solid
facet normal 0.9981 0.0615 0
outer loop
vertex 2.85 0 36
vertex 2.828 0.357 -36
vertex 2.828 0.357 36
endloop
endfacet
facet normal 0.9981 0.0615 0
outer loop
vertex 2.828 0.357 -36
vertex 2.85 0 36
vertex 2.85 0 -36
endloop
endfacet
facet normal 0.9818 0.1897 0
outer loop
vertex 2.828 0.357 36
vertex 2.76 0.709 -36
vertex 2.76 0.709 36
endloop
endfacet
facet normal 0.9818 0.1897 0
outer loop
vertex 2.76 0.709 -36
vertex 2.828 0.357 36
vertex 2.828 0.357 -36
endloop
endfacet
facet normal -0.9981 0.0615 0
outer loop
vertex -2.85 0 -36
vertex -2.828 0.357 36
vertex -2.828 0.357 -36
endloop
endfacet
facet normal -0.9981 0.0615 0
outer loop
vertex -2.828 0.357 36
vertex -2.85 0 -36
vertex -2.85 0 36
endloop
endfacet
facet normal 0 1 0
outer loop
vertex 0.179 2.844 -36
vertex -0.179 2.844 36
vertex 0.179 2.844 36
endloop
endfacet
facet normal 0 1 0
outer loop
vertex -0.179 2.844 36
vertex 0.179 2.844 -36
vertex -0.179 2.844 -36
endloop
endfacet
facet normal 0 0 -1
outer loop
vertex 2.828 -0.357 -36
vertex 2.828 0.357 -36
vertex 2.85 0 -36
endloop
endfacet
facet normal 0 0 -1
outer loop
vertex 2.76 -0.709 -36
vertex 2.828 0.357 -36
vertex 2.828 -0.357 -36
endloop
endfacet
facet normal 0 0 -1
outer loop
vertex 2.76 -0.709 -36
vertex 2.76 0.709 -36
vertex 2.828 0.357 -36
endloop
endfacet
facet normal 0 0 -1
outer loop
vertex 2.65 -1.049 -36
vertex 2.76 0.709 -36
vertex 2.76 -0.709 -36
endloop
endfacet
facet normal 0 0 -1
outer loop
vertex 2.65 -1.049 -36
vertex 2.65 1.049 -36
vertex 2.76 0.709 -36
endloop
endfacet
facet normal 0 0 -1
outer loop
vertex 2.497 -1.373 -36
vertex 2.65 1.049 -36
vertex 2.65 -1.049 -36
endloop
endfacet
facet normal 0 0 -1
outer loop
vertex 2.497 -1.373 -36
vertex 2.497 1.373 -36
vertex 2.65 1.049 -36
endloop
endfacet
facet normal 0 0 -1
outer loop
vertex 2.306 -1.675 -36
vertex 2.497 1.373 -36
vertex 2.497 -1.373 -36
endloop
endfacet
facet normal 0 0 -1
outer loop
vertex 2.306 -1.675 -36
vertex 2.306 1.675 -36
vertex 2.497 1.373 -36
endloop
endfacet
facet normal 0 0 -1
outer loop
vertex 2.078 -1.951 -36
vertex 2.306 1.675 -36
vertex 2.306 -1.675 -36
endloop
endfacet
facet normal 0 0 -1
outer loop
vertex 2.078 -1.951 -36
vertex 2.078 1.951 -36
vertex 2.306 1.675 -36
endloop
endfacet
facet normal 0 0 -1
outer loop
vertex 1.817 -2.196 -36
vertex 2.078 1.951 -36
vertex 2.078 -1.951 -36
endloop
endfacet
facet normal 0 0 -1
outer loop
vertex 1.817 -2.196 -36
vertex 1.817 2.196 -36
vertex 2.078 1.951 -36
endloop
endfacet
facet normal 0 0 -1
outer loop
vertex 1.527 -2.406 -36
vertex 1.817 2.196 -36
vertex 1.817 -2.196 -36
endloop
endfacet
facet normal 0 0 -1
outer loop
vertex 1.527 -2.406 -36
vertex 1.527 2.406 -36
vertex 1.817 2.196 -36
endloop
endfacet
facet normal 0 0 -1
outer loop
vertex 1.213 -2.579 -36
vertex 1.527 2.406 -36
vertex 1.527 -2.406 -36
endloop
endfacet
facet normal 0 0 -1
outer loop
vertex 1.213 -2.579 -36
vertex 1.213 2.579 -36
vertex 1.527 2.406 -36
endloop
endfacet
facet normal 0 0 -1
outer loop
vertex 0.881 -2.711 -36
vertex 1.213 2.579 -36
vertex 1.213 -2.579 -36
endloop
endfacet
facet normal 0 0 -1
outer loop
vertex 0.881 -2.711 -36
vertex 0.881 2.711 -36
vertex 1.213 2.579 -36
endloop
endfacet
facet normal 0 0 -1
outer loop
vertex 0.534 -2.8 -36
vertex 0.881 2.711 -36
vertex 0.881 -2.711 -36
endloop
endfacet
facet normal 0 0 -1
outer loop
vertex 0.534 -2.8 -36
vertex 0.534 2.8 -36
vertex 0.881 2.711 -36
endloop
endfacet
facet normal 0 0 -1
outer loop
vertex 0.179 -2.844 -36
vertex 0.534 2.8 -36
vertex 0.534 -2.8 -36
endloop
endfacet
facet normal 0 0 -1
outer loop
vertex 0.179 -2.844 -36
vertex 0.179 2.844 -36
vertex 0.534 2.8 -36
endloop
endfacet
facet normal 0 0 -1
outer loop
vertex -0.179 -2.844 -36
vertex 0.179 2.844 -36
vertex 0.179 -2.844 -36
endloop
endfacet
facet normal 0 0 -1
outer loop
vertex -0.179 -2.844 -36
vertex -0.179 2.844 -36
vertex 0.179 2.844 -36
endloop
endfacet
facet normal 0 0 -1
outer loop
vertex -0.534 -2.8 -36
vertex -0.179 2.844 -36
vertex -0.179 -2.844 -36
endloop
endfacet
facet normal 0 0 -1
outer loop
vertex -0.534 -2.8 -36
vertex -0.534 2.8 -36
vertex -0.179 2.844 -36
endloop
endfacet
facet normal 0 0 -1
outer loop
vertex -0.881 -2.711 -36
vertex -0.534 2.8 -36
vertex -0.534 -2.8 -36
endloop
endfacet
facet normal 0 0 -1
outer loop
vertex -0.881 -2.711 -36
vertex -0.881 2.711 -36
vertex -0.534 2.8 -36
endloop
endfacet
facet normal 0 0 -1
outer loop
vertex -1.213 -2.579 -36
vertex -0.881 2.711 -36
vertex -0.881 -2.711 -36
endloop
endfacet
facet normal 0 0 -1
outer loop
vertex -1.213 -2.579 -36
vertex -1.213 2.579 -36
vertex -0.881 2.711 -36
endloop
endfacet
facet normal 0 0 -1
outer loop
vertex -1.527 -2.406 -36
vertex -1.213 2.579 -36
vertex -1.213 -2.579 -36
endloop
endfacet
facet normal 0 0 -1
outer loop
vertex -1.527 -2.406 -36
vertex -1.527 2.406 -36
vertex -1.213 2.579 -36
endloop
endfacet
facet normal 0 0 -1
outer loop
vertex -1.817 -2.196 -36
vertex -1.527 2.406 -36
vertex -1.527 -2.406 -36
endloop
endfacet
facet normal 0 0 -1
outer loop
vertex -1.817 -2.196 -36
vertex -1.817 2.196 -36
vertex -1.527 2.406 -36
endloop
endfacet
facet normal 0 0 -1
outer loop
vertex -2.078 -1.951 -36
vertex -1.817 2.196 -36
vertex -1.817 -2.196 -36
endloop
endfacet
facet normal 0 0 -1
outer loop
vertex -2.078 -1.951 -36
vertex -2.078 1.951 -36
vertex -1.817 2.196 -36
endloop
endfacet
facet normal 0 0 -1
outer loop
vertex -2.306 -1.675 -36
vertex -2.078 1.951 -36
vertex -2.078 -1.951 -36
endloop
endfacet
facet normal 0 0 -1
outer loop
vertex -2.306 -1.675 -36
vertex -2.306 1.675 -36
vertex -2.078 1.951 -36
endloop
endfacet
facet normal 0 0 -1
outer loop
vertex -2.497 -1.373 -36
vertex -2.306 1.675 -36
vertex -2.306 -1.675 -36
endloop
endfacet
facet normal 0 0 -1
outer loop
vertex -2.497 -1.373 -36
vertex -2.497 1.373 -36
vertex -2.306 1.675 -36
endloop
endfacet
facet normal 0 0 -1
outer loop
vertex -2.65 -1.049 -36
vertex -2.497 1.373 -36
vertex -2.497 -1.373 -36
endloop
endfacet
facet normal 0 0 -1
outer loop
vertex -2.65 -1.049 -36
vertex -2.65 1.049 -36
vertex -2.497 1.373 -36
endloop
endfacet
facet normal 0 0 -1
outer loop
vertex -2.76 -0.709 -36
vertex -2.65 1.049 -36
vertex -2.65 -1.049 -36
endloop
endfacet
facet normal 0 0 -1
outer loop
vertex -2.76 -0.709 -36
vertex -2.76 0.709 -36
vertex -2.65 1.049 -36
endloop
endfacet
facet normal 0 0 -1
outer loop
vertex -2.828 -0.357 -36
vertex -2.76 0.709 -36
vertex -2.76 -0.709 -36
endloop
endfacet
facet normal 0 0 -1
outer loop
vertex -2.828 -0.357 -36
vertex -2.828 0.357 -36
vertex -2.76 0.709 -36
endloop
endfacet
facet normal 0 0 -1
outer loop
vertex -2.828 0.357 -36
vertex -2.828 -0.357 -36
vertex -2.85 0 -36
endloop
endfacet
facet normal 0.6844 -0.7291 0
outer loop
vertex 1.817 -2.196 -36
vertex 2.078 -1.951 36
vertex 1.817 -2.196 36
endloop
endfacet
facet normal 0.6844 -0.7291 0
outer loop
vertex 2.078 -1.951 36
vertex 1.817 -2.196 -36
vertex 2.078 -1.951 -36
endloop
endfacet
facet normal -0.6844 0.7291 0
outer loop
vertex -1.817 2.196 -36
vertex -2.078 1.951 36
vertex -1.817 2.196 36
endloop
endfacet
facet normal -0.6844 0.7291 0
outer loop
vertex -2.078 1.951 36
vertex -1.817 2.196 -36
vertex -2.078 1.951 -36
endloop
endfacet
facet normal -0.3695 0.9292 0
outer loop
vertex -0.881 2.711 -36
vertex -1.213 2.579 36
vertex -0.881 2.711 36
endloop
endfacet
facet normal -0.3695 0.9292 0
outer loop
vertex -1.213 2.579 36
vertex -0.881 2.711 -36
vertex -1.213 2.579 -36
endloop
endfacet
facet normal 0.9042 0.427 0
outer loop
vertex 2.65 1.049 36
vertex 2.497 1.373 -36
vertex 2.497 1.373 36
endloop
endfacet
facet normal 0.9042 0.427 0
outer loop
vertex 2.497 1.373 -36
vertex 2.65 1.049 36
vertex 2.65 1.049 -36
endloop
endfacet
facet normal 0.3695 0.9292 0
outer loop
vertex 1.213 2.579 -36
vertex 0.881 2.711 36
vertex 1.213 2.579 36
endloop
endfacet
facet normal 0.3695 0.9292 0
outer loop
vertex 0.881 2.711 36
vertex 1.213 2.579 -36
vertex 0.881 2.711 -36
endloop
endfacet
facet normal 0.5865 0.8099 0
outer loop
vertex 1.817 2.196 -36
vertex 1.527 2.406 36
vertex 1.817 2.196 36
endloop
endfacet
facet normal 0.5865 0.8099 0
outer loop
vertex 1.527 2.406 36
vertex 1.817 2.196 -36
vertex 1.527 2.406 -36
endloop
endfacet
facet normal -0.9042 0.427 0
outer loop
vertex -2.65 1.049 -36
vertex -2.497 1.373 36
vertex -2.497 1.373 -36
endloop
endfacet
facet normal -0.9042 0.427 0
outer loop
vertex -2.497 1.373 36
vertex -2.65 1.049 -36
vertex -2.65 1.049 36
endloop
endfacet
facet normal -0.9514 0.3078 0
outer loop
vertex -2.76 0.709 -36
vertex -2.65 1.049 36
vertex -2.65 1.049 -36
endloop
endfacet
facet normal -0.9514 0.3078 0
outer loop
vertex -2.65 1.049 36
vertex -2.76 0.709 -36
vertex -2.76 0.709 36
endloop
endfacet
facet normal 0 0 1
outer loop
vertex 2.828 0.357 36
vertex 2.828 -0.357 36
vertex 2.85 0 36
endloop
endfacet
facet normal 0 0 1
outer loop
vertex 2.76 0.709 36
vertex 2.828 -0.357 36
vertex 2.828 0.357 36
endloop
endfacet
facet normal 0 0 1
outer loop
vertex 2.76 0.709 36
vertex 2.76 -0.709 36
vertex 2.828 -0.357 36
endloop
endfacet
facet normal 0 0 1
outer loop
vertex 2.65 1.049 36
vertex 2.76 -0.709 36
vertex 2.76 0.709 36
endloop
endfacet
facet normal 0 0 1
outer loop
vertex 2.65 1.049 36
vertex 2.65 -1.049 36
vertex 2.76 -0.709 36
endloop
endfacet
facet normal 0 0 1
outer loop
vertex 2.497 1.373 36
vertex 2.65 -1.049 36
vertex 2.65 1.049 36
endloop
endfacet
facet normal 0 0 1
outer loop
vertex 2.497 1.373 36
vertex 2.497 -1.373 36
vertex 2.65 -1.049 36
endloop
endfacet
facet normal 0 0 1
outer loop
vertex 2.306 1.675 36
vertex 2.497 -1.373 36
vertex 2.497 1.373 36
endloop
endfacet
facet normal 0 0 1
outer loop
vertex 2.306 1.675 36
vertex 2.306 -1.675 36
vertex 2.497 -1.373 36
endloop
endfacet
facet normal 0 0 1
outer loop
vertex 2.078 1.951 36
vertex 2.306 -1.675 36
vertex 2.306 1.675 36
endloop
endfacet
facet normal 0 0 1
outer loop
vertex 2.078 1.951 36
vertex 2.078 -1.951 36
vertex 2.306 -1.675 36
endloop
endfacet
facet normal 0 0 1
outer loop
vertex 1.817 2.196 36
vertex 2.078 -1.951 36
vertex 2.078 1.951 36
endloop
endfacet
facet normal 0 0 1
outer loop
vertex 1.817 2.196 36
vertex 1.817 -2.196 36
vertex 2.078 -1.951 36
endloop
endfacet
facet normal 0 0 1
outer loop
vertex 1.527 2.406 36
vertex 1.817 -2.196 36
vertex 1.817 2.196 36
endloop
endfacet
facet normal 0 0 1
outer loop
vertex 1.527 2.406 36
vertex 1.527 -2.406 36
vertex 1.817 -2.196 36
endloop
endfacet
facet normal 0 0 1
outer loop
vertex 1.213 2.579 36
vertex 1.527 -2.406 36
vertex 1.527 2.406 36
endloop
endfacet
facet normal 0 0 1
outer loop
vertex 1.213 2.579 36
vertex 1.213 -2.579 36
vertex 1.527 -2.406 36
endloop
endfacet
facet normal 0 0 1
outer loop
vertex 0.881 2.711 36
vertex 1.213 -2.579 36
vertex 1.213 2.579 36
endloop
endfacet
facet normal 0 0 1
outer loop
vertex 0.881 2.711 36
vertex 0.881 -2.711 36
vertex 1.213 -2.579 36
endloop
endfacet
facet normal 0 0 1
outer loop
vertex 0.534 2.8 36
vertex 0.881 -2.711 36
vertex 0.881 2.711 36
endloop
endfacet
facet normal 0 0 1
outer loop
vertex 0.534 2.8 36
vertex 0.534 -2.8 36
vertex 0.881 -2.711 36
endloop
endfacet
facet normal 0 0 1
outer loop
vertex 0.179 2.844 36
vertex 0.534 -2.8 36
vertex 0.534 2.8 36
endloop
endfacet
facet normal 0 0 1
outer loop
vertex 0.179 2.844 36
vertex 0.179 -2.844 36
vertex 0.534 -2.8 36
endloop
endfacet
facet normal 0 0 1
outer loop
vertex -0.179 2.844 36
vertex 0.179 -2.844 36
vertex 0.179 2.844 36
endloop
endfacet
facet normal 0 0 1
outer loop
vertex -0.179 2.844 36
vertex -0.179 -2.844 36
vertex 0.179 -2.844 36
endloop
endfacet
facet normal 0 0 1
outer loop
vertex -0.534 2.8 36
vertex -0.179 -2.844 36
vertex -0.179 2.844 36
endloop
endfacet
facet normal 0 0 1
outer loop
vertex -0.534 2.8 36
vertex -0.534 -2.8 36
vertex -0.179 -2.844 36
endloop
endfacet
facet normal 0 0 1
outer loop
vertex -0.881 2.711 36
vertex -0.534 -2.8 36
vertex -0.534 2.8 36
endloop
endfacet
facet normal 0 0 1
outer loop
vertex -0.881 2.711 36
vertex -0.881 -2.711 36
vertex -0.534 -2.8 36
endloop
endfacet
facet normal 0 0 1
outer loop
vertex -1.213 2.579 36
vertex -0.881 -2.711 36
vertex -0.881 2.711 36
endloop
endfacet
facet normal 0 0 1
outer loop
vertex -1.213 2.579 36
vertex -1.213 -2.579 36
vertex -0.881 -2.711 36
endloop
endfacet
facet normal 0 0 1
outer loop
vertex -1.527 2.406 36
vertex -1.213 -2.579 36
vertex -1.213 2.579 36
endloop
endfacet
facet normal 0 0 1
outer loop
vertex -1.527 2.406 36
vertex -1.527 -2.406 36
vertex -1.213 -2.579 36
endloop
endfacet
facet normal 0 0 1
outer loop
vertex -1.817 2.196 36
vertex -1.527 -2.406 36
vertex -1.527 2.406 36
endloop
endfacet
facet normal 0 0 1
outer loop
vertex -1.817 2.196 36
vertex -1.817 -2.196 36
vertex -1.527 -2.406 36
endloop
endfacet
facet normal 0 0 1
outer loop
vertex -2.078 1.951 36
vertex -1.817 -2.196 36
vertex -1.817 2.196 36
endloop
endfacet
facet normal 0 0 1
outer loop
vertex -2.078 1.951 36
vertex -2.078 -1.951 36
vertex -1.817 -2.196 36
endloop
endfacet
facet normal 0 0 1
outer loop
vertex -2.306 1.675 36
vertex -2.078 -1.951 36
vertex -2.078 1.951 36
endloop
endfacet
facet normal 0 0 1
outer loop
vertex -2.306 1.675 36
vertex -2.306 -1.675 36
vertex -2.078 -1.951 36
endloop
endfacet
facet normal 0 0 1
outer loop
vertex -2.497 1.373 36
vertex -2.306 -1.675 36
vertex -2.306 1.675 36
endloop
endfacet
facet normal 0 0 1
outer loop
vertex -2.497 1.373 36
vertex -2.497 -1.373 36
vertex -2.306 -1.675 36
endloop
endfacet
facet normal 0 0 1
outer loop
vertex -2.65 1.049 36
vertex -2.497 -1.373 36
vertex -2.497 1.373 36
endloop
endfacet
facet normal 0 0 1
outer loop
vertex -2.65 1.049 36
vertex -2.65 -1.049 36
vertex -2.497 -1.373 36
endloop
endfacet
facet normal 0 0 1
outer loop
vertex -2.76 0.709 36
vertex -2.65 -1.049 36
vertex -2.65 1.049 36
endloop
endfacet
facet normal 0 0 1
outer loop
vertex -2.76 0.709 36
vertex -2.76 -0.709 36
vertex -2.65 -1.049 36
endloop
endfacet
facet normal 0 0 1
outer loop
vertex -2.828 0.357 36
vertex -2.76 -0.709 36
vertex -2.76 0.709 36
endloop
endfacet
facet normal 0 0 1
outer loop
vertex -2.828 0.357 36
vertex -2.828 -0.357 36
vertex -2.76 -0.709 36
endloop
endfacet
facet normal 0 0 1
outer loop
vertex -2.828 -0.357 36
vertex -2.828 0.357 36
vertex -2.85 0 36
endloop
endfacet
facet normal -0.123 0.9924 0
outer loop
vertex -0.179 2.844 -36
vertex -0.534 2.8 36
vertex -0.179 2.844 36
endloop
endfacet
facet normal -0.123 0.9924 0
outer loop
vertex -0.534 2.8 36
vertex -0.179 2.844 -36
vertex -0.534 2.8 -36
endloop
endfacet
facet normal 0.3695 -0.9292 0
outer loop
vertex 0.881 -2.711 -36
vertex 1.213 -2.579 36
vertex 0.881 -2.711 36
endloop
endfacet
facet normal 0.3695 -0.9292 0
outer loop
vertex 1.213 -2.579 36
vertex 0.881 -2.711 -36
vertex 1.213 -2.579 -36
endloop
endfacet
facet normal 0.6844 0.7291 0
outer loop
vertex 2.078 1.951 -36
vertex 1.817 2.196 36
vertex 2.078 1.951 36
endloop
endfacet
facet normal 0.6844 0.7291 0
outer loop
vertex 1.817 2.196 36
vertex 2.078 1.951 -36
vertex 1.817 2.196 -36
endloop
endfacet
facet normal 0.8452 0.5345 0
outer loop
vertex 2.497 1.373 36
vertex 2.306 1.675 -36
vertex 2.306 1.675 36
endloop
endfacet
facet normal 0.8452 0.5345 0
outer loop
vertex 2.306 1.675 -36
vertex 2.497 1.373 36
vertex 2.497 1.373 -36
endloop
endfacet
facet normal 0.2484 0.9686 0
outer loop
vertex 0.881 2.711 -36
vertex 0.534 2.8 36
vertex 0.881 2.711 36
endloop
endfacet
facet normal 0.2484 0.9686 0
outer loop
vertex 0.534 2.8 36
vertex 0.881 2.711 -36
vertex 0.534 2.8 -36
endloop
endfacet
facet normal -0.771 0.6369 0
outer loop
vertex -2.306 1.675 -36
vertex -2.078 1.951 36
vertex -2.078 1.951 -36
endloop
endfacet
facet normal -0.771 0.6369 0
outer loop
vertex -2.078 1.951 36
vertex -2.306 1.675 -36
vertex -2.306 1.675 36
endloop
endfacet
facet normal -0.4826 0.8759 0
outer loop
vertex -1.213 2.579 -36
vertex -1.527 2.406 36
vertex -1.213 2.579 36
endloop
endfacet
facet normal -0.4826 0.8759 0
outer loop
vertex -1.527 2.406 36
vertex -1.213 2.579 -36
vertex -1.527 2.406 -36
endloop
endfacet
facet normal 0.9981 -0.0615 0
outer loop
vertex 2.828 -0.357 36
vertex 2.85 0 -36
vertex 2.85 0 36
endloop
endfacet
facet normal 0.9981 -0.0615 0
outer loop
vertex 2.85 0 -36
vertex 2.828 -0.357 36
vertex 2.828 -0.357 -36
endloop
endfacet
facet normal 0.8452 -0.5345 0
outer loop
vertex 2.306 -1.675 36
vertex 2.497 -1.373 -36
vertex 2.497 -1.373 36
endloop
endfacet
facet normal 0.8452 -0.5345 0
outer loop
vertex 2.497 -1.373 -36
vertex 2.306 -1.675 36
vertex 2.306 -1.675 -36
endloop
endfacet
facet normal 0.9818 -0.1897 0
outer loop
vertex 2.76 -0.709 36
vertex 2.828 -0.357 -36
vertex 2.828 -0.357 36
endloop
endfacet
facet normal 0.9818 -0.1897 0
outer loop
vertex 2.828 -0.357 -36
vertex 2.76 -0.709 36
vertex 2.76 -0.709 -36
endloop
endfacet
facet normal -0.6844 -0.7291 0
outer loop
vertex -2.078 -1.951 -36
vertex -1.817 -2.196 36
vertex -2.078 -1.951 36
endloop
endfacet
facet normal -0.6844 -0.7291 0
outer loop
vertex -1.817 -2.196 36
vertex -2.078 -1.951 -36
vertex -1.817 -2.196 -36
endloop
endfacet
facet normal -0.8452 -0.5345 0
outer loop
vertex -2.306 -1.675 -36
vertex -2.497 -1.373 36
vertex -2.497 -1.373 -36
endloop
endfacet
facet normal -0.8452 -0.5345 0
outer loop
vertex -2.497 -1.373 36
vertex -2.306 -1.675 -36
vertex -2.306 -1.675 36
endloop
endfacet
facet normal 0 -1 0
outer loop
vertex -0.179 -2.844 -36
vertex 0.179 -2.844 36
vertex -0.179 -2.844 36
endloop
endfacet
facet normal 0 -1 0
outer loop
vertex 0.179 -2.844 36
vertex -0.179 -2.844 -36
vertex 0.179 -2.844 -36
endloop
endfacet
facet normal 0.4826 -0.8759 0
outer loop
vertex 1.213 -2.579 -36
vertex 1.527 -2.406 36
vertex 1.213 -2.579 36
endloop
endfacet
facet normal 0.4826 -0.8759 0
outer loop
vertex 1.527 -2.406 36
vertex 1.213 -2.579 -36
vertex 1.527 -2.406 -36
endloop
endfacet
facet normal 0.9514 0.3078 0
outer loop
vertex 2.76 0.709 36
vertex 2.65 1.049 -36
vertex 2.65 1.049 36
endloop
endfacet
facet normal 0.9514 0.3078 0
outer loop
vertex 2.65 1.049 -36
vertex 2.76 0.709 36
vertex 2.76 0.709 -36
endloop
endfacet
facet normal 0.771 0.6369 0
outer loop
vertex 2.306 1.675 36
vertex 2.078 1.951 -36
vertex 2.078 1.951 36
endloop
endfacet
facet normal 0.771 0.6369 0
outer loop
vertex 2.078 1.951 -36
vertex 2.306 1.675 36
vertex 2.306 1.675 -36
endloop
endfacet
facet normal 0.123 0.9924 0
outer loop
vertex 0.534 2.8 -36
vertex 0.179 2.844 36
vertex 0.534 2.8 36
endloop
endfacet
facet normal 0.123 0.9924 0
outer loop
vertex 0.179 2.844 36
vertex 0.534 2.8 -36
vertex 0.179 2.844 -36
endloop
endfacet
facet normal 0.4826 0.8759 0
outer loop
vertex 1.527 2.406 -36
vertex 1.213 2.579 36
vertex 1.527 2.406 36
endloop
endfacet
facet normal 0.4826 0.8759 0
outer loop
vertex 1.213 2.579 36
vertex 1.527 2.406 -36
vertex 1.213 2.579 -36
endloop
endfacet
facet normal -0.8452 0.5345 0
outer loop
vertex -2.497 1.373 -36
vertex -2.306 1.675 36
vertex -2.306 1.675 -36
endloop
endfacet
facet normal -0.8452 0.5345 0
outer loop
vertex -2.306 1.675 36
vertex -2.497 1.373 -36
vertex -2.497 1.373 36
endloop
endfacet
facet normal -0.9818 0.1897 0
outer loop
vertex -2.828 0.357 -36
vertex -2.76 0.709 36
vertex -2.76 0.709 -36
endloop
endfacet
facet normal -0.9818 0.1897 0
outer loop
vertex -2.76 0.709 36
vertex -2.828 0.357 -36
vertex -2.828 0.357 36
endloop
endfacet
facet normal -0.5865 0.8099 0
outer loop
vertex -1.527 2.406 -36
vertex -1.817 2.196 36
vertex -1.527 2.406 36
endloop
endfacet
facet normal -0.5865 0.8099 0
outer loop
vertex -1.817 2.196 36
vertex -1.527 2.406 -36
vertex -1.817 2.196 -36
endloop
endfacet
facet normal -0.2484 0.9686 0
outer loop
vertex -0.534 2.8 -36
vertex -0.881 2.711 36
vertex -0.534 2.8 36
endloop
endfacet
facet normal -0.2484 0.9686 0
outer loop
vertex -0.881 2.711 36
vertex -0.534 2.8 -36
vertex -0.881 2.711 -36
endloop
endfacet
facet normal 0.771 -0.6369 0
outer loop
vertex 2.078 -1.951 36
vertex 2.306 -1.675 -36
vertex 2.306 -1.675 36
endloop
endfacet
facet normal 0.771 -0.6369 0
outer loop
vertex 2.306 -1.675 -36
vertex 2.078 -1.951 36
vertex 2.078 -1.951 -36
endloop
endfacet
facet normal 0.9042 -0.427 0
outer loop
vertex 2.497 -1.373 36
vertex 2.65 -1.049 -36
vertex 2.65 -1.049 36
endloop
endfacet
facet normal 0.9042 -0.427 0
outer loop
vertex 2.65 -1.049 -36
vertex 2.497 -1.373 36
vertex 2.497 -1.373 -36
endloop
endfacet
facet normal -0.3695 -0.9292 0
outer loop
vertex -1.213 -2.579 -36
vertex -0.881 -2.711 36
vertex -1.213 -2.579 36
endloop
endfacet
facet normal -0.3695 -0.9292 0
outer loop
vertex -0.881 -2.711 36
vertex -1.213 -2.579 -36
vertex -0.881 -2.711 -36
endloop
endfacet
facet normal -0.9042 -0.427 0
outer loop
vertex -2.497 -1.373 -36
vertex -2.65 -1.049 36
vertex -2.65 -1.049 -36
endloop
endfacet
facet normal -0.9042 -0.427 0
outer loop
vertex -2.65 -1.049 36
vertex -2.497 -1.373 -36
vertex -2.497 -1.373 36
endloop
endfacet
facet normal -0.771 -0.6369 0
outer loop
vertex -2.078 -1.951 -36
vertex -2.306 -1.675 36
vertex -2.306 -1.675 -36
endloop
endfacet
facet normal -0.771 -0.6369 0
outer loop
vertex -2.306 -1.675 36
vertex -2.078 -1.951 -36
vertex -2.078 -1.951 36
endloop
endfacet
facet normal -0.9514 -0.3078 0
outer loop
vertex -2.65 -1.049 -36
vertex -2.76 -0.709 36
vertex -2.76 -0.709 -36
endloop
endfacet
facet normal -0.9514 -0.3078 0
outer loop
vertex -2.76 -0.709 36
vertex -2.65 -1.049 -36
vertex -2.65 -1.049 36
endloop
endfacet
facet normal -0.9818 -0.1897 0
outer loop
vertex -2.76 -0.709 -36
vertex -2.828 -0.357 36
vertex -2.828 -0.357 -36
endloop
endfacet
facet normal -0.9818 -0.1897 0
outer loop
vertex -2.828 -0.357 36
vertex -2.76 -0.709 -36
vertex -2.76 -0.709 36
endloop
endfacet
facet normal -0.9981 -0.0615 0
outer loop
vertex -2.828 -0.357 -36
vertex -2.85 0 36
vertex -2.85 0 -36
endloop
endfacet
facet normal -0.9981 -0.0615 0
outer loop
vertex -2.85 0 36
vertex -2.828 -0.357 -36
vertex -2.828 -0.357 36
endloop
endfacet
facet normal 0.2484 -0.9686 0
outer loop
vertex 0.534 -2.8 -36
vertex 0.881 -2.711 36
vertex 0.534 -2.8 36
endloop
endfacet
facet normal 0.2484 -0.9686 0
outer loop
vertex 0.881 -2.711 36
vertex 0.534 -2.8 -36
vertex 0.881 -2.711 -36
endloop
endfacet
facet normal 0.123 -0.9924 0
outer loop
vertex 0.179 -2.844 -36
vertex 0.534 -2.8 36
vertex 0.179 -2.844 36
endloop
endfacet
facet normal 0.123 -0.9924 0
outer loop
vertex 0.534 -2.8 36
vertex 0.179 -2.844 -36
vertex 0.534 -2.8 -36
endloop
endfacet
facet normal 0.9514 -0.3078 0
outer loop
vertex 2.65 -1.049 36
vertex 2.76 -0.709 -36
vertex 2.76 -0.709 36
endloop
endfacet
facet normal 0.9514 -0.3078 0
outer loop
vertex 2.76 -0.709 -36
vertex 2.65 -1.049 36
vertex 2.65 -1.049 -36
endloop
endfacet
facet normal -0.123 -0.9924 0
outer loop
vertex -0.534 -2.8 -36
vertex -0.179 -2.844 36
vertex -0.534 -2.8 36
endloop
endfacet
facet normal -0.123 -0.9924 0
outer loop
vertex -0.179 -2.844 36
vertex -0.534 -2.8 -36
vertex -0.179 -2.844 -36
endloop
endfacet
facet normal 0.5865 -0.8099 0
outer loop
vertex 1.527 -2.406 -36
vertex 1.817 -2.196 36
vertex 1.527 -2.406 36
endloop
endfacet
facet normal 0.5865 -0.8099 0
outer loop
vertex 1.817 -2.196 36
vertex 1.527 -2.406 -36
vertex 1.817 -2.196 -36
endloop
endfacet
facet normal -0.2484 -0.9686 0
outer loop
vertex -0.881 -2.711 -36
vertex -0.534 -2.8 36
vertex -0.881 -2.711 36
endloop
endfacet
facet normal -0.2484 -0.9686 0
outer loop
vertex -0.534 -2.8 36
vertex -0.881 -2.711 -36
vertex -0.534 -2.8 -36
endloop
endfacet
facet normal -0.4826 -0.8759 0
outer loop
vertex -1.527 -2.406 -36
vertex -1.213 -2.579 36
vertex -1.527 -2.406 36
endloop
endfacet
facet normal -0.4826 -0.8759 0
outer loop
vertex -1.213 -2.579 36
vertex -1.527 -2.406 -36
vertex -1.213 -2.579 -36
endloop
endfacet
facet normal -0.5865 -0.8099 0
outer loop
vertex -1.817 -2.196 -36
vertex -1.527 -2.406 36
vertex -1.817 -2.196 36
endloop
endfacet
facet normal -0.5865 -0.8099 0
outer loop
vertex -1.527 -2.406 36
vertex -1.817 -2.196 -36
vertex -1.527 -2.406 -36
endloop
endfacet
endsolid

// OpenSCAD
$fn = 50;


difference() {
	union() {
		translate(v = [0, 0, -36.0000000000]) {
			cylinder(h = 72, r = 2.8500000000);
		}
	}
	union() {
		translate(v = [0, 0, -100.0000000000]) {
			cylinder(h = 200, r = 0);
		}
	}
}
